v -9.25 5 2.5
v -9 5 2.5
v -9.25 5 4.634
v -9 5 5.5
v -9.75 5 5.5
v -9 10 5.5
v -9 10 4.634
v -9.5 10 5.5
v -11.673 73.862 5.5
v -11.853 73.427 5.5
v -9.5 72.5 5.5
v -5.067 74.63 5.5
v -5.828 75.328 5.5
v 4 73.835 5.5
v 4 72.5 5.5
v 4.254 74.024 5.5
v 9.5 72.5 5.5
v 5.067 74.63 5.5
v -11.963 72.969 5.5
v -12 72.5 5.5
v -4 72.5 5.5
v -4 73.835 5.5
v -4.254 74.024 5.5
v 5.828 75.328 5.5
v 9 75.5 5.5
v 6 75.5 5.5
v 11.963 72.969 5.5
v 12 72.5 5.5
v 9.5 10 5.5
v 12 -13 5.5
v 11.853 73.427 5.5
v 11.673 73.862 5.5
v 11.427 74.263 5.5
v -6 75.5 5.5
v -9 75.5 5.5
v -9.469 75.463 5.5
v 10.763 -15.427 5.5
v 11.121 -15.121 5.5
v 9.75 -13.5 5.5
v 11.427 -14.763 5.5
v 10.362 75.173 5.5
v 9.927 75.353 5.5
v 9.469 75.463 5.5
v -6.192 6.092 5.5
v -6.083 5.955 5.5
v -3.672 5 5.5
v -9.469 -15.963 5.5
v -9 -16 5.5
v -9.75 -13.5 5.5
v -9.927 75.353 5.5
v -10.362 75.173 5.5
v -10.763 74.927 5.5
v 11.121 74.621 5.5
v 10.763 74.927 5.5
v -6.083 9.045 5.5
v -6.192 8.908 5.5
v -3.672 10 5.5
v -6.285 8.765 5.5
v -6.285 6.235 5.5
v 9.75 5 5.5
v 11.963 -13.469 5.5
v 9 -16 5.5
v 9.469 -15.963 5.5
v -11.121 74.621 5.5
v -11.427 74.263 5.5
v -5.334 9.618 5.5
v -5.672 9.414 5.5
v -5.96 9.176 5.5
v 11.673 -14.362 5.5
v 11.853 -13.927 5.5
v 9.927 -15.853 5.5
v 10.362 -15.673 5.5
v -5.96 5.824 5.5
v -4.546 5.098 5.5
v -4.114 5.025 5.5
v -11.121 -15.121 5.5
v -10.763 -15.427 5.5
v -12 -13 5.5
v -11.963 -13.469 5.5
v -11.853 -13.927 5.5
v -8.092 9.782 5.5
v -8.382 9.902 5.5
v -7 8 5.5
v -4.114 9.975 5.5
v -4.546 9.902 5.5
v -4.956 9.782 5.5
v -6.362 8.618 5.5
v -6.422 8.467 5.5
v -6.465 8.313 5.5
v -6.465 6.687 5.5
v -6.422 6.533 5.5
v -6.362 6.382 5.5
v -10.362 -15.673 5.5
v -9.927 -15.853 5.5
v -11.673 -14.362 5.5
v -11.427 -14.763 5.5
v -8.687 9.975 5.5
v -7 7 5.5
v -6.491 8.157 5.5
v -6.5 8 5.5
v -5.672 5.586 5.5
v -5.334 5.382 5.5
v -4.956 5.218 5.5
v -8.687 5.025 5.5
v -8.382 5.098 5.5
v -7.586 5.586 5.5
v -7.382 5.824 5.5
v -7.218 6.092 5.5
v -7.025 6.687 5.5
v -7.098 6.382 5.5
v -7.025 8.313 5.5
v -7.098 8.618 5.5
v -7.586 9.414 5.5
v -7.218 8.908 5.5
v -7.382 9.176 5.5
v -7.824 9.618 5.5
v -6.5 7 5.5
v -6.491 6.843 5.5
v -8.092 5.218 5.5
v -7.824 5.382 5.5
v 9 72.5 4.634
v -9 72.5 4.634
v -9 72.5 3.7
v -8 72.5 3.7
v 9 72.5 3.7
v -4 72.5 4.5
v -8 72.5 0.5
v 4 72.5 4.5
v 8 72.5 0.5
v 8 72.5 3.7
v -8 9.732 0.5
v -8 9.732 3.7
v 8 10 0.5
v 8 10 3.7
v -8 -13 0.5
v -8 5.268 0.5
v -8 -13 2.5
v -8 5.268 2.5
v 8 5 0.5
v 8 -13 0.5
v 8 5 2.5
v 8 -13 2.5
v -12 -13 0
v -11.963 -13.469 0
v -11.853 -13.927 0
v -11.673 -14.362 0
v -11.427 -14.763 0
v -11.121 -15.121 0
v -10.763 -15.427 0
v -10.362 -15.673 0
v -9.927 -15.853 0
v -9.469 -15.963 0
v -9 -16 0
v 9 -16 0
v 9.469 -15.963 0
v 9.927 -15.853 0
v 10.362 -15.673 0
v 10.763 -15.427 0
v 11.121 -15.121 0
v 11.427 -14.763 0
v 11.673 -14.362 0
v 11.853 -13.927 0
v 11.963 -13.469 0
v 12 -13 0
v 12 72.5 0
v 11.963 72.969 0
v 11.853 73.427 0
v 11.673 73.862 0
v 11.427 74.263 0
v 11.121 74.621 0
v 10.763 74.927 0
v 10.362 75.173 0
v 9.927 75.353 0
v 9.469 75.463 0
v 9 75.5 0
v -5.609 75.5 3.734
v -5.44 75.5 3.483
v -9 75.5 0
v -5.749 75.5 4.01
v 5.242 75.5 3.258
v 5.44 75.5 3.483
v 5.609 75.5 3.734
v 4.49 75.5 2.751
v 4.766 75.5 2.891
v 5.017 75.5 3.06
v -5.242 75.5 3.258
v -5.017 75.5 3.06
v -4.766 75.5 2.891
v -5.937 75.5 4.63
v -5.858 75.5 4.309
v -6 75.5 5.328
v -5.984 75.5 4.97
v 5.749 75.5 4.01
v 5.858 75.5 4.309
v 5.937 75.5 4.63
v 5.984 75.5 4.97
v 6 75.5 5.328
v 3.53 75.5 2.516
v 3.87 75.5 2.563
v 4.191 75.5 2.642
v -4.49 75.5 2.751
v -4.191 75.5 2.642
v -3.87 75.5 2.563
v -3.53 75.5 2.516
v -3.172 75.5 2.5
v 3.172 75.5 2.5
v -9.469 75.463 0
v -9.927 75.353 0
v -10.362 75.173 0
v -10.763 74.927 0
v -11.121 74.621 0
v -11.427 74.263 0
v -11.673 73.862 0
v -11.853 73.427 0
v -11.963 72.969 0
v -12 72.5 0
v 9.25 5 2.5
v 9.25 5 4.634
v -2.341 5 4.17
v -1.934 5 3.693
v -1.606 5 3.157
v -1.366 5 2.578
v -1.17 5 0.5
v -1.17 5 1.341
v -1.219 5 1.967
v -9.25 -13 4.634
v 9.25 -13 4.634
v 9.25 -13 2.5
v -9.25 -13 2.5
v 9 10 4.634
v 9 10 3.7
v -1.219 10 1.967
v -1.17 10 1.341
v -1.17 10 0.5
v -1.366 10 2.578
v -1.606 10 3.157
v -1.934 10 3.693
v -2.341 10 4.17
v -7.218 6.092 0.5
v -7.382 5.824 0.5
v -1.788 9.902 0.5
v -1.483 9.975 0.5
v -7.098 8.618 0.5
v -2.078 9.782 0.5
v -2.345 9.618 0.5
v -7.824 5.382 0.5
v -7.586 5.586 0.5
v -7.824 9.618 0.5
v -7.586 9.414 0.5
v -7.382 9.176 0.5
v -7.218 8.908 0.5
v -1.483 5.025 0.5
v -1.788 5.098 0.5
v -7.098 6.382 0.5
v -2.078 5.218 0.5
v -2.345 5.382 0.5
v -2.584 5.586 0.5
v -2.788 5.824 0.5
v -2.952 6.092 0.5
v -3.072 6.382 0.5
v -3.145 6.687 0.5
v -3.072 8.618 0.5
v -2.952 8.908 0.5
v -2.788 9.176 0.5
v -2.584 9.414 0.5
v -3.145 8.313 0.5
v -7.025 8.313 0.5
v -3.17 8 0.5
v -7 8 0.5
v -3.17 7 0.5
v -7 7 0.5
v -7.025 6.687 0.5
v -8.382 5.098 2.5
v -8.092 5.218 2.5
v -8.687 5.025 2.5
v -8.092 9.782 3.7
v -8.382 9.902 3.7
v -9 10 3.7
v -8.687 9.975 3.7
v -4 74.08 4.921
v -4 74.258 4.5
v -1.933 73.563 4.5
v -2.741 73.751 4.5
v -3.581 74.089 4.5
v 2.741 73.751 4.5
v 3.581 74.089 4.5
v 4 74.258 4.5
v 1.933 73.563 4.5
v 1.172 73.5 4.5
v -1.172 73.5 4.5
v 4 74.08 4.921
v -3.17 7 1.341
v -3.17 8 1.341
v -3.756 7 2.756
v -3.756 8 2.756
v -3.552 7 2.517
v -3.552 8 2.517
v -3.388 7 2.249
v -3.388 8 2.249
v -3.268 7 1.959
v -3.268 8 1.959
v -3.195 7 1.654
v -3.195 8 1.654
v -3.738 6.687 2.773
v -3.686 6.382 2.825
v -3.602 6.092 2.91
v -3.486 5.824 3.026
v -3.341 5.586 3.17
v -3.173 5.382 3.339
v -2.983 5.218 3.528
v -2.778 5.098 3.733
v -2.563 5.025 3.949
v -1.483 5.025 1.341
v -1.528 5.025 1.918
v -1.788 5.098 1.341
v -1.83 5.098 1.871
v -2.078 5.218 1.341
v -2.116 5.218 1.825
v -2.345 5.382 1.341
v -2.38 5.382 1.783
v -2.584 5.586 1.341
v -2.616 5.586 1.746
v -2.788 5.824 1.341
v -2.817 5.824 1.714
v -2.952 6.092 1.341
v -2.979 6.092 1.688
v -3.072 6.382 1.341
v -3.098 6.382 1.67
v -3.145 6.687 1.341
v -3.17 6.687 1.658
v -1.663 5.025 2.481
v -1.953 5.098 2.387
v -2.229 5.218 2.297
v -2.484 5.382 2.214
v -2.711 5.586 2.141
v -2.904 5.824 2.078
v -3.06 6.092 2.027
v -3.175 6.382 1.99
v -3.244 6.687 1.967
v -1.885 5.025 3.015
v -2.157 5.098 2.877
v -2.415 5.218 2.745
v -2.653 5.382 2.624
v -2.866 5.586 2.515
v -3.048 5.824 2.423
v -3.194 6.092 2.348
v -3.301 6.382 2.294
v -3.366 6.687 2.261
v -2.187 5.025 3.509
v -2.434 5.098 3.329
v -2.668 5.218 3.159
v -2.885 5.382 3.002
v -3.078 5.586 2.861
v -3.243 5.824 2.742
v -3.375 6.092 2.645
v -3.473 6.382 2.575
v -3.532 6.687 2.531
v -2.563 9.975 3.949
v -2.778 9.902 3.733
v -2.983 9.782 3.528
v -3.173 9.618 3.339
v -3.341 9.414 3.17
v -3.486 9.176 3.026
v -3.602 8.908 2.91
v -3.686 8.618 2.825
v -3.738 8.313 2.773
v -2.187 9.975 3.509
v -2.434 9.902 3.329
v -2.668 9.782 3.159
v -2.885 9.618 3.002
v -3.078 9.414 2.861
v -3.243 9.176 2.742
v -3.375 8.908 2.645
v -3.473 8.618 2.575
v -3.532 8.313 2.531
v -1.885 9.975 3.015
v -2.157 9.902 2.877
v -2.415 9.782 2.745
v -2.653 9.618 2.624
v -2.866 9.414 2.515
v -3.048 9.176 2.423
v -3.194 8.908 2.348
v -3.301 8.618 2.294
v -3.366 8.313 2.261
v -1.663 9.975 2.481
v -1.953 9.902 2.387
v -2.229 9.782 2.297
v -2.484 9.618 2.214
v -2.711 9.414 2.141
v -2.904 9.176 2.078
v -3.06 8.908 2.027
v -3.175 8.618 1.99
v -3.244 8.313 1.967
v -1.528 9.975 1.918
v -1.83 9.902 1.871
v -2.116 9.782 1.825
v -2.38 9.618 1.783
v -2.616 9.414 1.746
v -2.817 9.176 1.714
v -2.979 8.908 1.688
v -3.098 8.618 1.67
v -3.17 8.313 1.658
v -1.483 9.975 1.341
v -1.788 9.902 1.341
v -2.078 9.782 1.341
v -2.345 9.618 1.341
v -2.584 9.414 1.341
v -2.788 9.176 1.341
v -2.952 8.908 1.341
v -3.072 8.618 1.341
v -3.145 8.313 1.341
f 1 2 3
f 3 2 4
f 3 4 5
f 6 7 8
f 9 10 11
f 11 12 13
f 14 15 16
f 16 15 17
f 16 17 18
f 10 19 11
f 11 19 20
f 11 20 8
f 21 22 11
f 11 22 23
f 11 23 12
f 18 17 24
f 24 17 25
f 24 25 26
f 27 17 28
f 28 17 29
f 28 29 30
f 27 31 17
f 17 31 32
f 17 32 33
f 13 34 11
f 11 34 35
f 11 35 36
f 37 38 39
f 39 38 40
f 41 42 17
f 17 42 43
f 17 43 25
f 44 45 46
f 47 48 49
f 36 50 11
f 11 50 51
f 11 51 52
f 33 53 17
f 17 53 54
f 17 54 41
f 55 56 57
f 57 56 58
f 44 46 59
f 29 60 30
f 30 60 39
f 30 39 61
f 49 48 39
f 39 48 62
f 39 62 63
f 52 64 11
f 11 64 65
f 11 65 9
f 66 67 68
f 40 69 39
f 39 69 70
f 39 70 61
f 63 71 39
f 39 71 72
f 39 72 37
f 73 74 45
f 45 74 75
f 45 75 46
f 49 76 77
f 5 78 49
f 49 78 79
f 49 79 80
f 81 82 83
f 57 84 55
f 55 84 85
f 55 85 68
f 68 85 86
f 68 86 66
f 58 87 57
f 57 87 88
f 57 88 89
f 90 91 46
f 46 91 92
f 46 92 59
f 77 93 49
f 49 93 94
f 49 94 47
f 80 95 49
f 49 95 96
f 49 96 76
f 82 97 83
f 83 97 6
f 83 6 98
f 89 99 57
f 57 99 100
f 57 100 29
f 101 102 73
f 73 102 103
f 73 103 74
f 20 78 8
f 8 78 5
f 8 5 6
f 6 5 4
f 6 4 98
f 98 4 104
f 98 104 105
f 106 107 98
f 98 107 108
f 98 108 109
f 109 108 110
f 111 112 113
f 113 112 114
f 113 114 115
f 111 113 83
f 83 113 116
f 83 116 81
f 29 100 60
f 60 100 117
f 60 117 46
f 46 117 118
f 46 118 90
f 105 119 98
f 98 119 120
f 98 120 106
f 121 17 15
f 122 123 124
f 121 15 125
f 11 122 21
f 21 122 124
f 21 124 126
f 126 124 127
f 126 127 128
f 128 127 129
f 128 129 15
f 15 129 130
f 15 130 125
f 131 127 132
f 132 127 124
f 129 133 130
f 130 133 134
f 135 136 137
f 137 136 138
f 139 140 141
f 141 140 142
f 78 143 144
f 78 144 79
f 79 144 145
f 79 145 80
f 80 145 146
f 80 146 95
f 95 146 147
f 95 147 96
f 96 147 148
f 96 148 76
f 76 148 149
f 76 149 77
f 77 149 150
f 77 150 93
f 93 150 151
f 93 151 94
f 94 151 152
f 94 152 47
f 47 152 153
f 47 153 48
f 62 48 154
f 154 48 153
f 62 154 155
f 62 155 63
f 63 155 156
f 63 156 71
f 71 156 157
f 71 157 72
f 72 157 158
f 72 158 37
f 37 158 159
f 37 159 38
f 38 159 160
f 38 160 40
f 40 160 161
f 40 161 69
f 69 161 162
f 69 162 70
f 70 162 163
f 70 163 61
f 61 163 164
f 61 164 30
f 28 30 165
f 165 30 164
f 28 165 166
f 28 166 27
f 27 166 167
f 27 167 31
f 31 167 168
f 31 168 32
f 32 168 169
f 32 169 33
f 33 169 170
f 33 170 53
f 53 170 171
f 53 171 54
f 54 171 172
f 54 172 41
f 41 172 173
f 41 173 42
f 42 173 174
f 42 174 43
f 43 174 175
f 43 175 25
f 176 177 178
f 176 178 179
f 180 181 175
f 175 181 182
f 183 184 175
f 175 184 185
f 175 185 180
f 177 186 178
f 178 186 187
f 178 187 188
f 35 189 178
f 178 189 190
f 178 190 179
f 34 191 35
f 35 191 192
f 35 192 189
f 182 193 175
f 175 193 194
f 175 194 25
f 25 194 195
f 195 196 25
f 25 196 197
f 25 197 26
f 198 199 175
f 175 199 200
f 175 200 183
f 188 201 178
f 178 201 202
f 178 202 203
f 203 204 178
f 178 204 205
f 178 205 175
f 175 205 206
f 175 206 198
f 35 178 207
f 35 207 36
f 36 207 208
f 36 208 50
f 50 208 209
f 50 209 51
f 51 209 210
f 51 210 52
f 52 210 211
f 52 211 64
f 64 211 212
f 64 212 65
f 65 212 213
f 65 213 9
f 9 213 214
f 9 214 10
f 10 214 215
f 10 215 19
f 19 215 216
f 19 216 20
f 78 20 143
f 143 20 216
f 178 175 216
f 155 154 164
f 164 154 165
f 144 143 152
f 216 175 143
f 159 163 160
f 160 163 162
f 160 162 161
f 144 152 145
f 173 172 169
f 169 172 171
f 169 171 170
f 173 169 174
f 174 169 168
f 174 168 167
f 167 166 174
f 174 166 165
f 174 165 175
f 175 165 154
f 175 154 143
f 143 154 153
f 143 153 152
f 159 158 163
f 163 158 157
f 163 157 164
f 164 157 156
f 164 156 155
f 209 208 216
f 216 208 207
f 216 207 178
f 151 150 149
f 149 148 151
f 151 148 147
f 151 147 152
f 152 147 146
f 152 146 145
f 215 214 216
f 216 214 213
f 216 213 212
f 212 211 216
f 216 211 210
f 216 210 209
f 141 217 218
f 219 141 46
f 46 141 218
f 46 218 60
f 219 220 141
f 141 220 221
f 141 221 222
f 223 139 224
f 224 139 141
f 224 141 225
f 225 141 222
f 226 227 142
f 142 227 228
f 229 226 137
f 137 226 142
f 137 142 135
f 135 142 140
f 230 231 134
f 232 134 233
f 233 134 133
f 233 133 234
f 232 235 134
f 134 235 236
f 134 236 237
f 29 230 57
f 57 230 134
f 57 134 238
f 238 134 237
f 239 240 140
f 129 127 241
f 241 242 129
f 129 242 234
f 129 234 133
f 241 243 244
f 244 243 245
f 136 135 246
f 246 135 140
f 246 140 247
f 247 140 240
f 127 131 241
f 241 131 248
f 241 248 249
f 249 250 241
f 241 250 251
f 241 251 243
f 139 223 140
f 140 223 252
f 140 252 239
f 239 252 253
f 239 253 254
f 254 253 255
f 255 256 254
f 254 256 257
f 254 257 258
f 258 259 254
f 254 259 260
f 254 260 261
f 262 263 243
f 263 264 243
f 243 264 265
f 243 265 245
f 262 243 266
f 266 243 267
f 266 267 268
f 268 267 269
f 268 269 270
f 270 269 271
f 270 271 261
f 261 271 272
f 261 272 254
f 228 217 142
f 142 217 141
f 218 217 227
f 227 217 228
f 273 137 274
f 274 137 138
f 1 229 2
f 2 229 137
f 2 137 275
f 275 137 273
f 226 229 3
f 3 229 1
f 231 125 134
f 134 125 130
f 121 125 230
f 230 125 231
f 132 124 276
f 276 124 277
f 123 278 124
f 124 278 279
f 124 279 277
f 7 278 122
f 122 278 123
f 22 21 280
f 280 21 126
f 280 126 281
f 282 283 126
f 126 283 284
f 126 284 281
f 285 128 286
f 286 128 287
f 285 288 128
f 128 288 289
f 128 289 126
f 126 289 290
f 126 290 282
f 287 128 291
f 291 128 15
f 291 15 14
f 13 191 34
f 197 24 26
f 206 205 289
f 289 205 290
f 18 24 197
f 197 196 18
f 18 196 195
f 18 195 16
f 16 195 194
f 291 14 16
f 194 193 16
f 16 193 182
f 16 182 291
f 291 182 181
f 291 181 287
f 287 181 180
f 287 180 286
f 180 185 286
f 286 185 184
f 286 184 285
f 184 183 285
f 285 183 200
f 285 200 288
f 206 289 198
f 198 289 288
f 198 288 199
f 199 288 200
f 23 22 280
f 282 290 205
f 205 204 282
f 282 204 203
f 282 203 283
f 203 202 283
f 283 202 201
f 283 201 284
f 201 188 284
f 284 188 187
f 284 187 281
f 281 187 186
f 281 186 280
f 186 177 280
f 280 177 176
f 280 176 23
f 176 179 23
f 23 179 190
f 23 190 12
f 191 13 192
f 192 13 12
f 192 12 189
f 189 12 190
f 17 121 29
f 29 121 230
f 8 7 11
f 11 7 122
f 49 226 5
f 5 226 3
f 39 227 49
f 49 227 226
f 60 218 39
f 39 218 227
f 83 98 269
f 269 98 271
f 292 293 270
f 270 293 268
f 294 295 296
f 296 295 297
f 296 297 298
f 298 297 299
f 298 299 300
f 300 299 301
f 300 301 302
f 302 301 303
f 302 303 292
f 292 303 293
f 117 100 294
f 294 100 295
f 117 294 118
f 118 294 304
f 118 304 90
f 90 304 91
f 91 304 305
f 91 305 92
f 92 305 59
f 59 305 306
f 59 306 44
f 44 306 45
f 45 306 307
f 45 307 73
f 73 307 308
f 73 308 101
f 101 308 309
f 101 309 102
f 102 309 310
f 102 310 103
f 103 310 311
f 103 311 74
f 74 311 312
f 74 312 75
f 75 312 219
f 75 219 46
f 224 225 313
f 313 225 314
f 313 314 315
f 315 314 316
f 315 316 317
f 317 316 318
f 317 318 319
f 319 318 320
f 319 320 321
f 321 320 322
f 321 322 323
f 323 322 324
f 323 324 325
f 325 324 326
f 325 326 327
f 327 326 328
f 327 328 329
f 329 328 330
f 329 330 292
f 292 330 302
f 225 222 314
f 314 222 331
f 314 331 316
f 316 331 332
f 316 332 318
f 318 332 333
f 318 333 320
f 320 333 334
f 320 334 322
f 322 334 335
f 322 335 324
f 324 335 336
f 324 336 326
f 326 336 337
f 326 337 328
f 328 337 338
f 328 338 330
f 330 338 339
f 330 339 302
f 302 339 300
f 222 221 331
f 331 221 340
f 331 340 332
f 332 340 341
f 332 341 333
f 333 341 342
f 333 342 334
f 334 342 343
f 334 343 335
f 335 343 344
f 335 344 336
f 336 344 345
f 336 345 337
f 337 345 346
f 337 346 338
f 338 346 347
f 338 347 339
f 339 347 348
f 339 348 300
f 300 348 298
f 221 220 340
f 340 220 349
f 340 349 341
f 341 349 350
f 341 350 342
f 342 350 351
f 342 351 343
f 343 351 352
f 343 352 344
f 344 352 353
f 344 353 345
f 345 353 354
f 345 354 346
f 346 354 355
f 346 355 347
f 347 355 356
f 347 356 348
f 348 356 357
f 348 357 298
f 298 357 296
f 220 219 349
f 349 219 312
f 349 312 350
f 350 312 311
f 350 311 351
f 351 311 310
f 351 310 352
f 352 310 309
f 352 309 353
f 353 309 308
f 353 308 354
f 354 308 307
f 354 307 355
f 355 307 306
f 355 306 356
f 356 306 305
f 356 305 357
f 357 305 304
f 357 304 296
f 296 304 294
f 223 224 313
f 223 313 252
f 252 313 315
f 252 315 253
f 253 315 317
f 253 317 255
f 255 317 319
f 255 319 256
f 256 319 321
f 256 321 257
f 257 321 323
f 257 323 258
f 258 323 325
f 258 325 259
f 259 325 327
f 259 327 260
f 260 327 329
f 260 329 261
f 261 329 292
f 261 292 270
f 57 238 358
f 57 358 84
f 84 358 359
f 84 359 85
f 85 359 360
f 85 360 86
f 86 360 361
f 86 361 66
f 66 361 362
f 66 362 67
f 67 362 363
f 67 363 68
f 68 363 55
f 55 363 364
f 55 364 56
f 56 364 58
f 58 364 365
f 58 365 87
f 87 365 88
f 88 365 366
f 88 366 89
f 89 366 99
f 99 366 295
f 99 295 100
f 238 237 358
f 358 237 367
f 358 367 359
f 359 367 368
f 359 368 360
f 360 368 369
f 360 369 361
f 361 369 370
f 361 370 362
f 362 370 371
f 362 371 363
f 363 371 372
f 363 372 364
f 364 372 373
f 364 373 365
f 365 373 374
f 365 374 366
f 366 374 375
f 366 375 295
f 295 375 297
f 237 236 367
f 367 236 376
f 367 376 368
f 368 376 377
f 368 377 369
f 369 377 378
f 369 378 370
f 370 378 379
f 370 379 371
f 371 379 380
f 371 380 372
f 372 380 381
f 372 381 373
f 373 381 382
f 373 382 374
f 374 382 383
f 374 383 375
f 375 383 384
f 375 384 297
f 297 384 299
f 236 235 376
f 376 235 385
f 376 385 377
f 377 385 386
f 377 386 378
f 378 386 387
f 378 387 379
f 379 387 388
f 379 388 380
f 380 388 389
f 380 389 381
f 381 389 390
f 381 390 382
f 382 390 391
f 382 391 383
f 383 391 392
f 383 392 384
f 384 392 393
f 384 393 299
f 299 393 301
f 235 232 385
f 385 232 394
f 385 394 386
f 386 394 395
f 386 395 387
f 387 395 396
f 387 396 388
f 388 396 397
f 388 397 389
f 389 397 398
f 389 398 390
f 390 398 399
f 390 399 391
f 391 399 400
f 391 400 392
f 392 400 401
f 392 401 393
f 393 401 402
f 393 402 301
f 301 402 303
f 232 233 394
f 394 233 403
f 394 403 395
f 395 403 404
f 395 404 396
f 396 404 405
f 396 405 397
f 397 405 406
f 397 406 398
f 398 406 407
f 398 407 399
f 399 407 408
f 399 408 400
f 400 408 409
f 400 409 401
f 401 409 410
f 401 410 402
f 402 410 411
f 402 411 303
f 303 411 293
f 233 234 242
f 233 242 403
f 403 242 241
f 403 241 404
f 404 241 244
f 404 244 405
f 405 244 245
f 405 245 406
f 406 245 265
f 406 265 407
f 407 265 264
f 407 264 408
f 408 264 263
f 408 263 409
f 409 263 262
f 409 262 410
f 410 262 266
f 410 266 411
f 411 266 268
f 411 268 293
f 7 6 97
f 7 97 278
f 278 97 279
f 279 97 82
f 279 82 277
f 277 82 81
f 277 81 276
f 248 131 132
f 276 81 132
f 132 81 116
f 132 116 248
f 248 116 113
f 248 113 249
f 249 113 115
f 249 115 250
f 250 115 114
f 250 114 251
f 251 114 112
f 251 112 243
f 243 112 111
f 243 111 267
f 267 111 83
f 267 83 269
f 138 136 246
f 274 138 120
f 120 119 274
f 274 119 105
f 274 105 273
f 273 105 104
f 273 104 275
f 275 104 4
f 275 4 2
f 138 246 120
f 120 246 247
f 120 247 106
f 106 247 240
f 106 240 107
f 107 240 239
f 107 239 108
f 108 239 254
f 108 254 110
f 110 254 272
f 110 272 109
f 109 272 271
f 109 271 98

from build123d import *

# Parameters (mm, degrees)
BOSS_EXTRUDE1_DEPTH          = 5.5
SKETCH4_W                    = 16
SKETCH4_H                    = 62.5
SKETCH4_H_2                  = 18
CUT_EXTRUDE1_DEPTH           = 5
SKETCH5_W                    = 18.5
SKETCH5_H                    = 18
CUT_EXTRUDE2_DEPTH           = 3
SKETCH7_W                    = 18
SKETCH7_H                    = 62.5
CUT_EXTRUDE3_DEPTH           = 1.8
CUT_EXTRUDE4_START           = -1
SKETCH10_W                   = 8
SKETCH10_H                   = 1
CUT_EXTRUDE4_DEPTH           = 89.479047827
CUT_EXTRUDE4_TAPER           = -45
CUT_EXTRUDE4_OTHER_WAY_DEPTH = 1.8
FILLET1_R                    = 4
CHAMFER1_SIZE                = 0.5
CHAMFER1_SIZE2               = 0.866025404
CUT_EXTRUDE5_REACH           = 68.817
FILLET2_R                    = 2
FILLET3_R                    = 2


with BuildPart() as part:
    # Sketch2 → Boss-Extrude1 (new body)
    with BuildSketch(Plane.XY):
        with BuildLine():
            Line((-9, 75.5), (9, 75.5))
            ThreePointArc((9, 75.5), (11.121320344, 74.621320344), (12, 72.5))
            Line((12, 72.5), (12, -13))
            ThreePointArc((12, -13), (11.121320344, -15.121320344), (9, -16))
            Line((9, -16), (-9, -16))
            ThreePointArc((-9, -16), (-11.121320344, -15.121320344), (-12, -13))
            Line((-12, -13), (-12, 72.5))
            ThreePointArc((-12, 72.5), (-11.121320344, 74.621320344), (-9, 75.5))
        make_face()
    extrude(amount=BOSS_EXTRUDE1_DEPTH)

    # Sketch4 → Cut-Extrude1 (cut)
    with BuildSketch(Plane.XY.offset(5.5)):
        with Locations((0, 41.25)):
            Rectangle(SKETCH4_W, SKETCH4_H)
        with Locations((0, -4)):
            Rectangle(SKETCH4_W, SKETCH4_H_2)
    extrude(amount=-CUT_EXTRUDE1_DEPTH, mode=Mode.SUBTRACT)

    # Sketch5 → Cut-Extrude2 (cut)
    with BuildSketch(Plane.XY.offset(5.5)):
        with Locations((0, -4)):
            Rectangle(SKETCH5_W, SKETCH5_H)
    extrude(amount=-CUT_EXTRUDE2_DEPTH, mode=Mode.SUBTRACT)

    # Sketch7 → Cut-Extrude3 (cut)
    with BuildSketch(Plane.XY.offset(5.5)):
        with Locations((0, 41.25)):
            Rectangle(SKETCH7_W, SKETCH7_H)
    extrude(amount=-CUT_EXTRUDE3_DEPTH, mode=Mode.SUBTRACT)

    # Sketch10 → Cut-Extrude4 (cut)
    with BuildSketch(Plane.XZ.offset(-72.5).offset(CUT_EXTRUDE4_START)):
        with Locations((0, 5)):
            Rectangle(SKETCH10_W, SKETCH10_H)
    extrude(amount=-CUT_EXTRUDE4_DEPTH, taper=CUT_EXTRUDE4_TAPER, mode=Mode.SUBTRACT)

    # Sketch10 → Cut-Extrude4 other way (cut)
    with BuildSketch(Plane.XZ.offset(-72.5).offset(CUT_EXTRUDE4_START)):
        with Locations((0, 5)):
            Rectangle(SKETCH10_W, SKETCH10_H)
    extrude(amount=CUT_EXTRUDE4_OTHER_WAY_DEPTH, mode=Mode.SUBTRACT)

    # Fillet1
    # the kernel refuses this fillet: 4 mm, written as the material it adds along each edge
    with BuildSketch(Plane(origin=(0.666666667, 70.166666667, 7.833333333), x_dir=(0.4082482904638629, 0.40824829046386407, 0.8164965809277255), z_dir=(0.5773502691896267, 0.5773502691896242, -0.5773502691896265))) as fillet1_piece_1_section:
        with BuildLine():
            CenterArc((FILLET1_R * 0.57735026919, -FILLET1_R), FILLET1_R, 90, 60)
            Line((-FILLET1_R * 0.288675134595, -FILLET1_R * 0.5), (0, 0))
            Line((0, 0), (FILLET1_R * 0.57735026919, 0))
        make_face()
    fillet1_piece_1 = extrude(amount=15.011106999, mode=Mode.PRIVATE)
    fillet1_piece_1 = split(fillet1_piece_1, bisect_by=Plane(origin=(0.666666667, 75.5, 7.833333333), z_dir=(0, -1, 0)), keep=Keep.TOP, mode=Mode.PRIVATE)
    fillet1_piece_1 = split(fillet1_piece_1, bisect_by=Plane(origin=(4, 70.166666667, 7.833333333), z_dir=(-1, 0, 0)), keep=Keep.TOP, mode=Mode.PRIVATE)
    fillet1_piece_1 = split(fillet1_piece_1, bisect_by=Plane(origin=(0.666666667, 70.166666667, 4.5), z_dir=(0, 0, -1)), keep=Keep.TOP, mode=Mode.PRIVATE)
    add(fillet1_piece_1)
    with BuildSketch(Plane(origin=(0.666666667, 70.166666667, 7.833333333), x_dir=(0.4082482904638629, 0.40824829046386407, 0.8164965809277255), z_dir=(0.5773502691896267, 0.5773502691896242, -0.5773502691896265))) as fillet1_piece_2_section:
        with BuildLine():
            CenterArc((FILLET1_R * 0.57735026919, -FILLET1_R), FILLET1_R, 90, 60)
            Line((-FILLET1_R * 0.288675134595, -FILLET1_R * 0.5), (0, 0))
            Line((0, 0), (FILLET1_R * 0.57735026919, 0))
        make_face()
    fillet1_piece_2 = extrude(amount=15.011106999, mode=Mode.PRIVATE)
    fillet1_piece_2 = split(fillet1_piece_2, bisect_by=Plane(origin=(0.666666667, 75.5, 7.833333333), z_dir=(0, -1, 0)), keep=Keep.TOP, mode=Mode.PRIVATE)
    fillet1_piece_2 = split(fillet1_piece_2, bisect_by=Plane(origin=(0.666666667, 70.166666667, 5.5), z_dir=(0, 0, -1)), keep=Keep.TOP, mode=Mode.PRIVATE)
    fillet1_piece_2 = split(fillet1_piece_2, bisect_by=Plane(origin=(4, 70.166666667, 7.833333333), z_dir=(1, 0, 0)), keep=Keep.TOP, mode=Mode.PRIVATE)
    fillet1_piece_2 = split(fillet1_piece_2, bisect_by=Plane(origin=(0.666666667, 70.166666667, 4.5), z_dir=(0, 0, 1)), keep=Keep.TOP, mode=Mode.PRIVATE)
    add(fillet1_piece_2)
    with BuildSketch(Plane(origin=(0.666666667, 70.166666667, 7.833333333), x_dir=(0.4082482904638629, 0.40824829046386407, 0.8164965809277255), z_dir=(0.5773502691896267, 0.5773502691896242, -0.5773502691896265))) as fillet1_piece_3_section:
        with BuildLine():
            CenterArc((FILLET1_R * 0.57735026919, -FILLET1_R), FILLET1_R, 90, 60)
            Line((-FILLET1_R * 0.288675134595, -FILLET1_R * 0.5), (0, 0))
            Line((0, 0), (FILLET1_R * 0.57735026919, 0))
        make_face()
    fillet1_piece_3 = extrude(amount=15.011106999, mode=Mode.PRIVATE)
    fillet1_piece_3 = split(fillet1_piece_3, bisect_by=Plane(origin=(0.666666667, 75.5, 7.833333333), z_dir=(0, -1, 0)), keep=Keep.TOP, mode=Mode.PRIVATE)
    fillet1_piece_3 = split(fillet1_piece_3, bisect_by=Plane(origin=(4, 70.166666667, 7.833333333), z_dir=(1, 0, 0)), keep=Keep.TOP, mode=Mode.PRIVATE)
    fillet1_piece_3 = split(fillet1_piece_3, bisect_by=Plane(origin=(0.666666667, 70.166666667, 4.5), z_dir=(0, 0, -1)), keep=Keep.TOP, mode=Mode.PRIVATE)
    add(fillet1_piece_3)
    with BuildSketch(Plane(origin=(-0.666666667, 70.166666667, 7.833333333), x_dir=(0.8164965809277253, 0.40824829046386424, -0.4082482904638631), z_dir=(-0.5773502691896267, 0.5773502691896242, -0.5773502691896265))) as fillet1_piece_4_section:
        with BuildLine():
            CenterArc((FILLET1_R * 0.57735026919, -FILLET1_R), FILLET1_R, 90, 60)
            Line((-FILLET1_R * 0.288675134595, -FILLET1_R * 0.5), (0, 0))
            Line((0, 0), (FILLET1_R * 0.57735026919, 0))
        make_face()
    fillet1_piece_4 = extrude(amount=15.011106999, mode=Mode.PRIVATE)
    fillet1_piece_4 = split(fillet1_piece_4, bisect_by=Plane(origin=(-0.666666667, 75.5, 7.833333333), z_dir=(0, -1, 0)), keep=Keep.TOP, mode=Mode.PRIVATE)
    fillet1_piece_4 = split(fillet1_piece_4, bisect_by=Plane(origin=(-0.666666667, 70.166666667, 5.5), z_dir=(0, 0, -1)), keep=Keep.TOP, mode=Mode.PRIVATE)
    fillet1_piece_4 = split(fillet1_piece_4, bisect_by=Plane(origin=(-0.666666667, 70.166666667, 4.5), z_dir=(0, 0, 1)), keep=Keep.TOP, mode=Mode.PRIVATE)
    fillet1_piece_4 = split(fillet1_piece_4, bisect_by=Plane(origin=(-4, 70.166666667, 7.833333333), z_dir=(-1, 0, 0)), keep=Keep.TOP, mode=Mode.PRIVATE)
    add(fillet1_piece_4)
    with BuildSketch(Plane(origin=(-0.666666667, 70.166666667, 7.833333333), x_dir=(0.8164965809277253, 0.40824829046386424, -0.4082482904638631), z_dir=(-0.5773502691896267, 0.5773502691896242, -0.5773502691896265))) as fillet1_piece_5_section:
        with BuildLine():
            CenterArc((FILLET1_R * 0.57735026919, -FILLET1_R), FILLET1_R, 90, 60)
            Line((-FILLET1_R * 0.288675134595, -FILLET1_R * 0.5), (0, 0))
            Line((0, 0), (FILLET1_R * 0.57735026919, 0))
        make_face()
    fillet1_piece_5 = extrude(amount=15.011106999, mode=Mode.PRIVATE)
    fillet1_piece_5 = split(fillet1_piece_5, bisect_by=Plane(origin=(-0.666666667, 75.5, 7.833333333), z_dir=(0, -1, 0)), keep=Keep.TOP, mode=Mode.PRIVATE)
    fillet1_piece_5 = split(fillet1_piece_5, bisect_by=Plane(origin=(-0.666666667, 70.166666667, 4.5), z_dir=(0, 0, -1)), keep=Keep.TOP, mode=Mode.PRIVATE)
    fillet1_piece_5 = split(fillet1_piece_5, bisect_by=Plane(origin=(-4, 70.166666667, 7.833333333), z_dir=(1, 0, 0)), keep=Keep.TOP, mode=Mode.PRIVATE)
    add(fillet1_piece_5)
    with BuildSketch(Plane(origin=(-0.666666667, 70.166666667, 7.833333333), x_dir=(0.8164965809277253, 0.40824829046386424, -0.4082482904638631), z_dir=(-0.5773502691896267, 0.5773502691896242, -0.5773502691896265))) as fillet1_piece_6_section:
        with BuildLine():
            CenterArc((FILLET1_R * 0.57735026919, -FILLET1_R), FILLET1_R, 90, 60)
            Line((-FILLET1_R * 0.288675134595, -FILLET1_R * 0.5), (0, 0))
            Line((0, 0), (FILLET1_R * 0.57735026919, 0))
        make_face()
    fillet1_piece_6 = extrude(amount=15.011106999, mode=Mode.PRIVATE)
    fillet1_piece_6 = split(fillet1_piece_6, bisect_by=Plane(origin=(-0.666666667, 75.5, 7.833333333), z_dir=(0, -1, 0)), keep=Keep.TOP, mode=Mode.PRIVATE)
    fillet1_piece_6 = split(fillet1_piece_6, bisect_by=Plane(origin=(-0.666666667, 70.166666667, 4.5), z_dir=(0, 0, -1)), keep=Keep.TOP, mode=Mode.PRIVATE)
    fillet1_piece_6 = split(fillet1_piece_6, bisect_by=Plane(origin=(-4, 70.166666667, 7.833333333), z_dir=(-1, 0, 0)), keep=Keep.TOP, mode=Mode.PRIVATE)
    add(fillet1_piece_6)

    # Chamfer1
    chamfer1_edges = [part.edges().sort_by_distance(p)[0] for p in [
        (0, -13, 5.5),
        (-9.25, -4, 5.5),
        (9.25, -4, 5.5),
        (-9, 41.25, 5.5),
        (9, 41.25, 5.5),
    ]]
    chamfer1_side = [part.faces().sort_by_distance(p)[0] for p in [
        (-5.551441315, 73.803006174, 5.5),
    ]]
    chamfer(chamfer1_edges, length=CHAMFER1_SIZE, length2=CHAMFER1_SIZE2, reference=chamfer1_side[0])

    # Sketch11 → Cut-Extrude5 (cut, up to next)
    with BuildSketch(Plane(origin=(0, 10, 0), x_dir=(1, 0, 0), z_dir=(0, 1, 0)), mode=Mode.PRIVATE) as cut_extrude5_sk1:
        with BuildLine():
            Line((-7, -5.5), (-7, -0.5))
            Line((-7, -0.5), (-3.169880661, -0.5))
            Line((-3.169880661, -0.5), (-3.169880661, -1.341453537))
            ThreePointArc((-3.169880661, -1.341453537), (-3.322121596, -2.106820401), (-3.755667099, -2.755667099))
            Line((-3.755667099, -2.755667099), (-6.5, -5.5))
            Line((-6.5, -5.5), (-7, -5.5))
        make_face()
    cut_extrude5_tool1 = extrude(cut_extrude5_sk1.sketch, amount=-CUT_EXTRUDE5_REACH, mode=Mode.PRIVATE) & part.part
    add(cut_extrude5_tool1.solids().sort_by_distance((-5.426528, 10, 2.435535))[0], mode=Mode.SUBTRACT)

    # Fillet2
    fillet2_edges = [part.edges().sort_by_distance(p)[0] for p in [
        (-3.169880661, 5, 0.920726768),
        (-3.322121596, 5, 2.106820401),
        (-5.12783355, 5, 4.12783355),
        (-5.12783355, 10, 4.12783355),
        (-3.322121596, 10, 2.106820401),
        (-3.169880661, 10, 0.920726768),
    ]]
    fillet(fillet2_edges, radius=FILLET2_R)

    # Fillet3
    fillet3_edges = [part.edges().sort_by_distance(p)[0] for p in [
        (-7, 10, 3),
        (-7, 5, 3),
    ]]
    fillet(fillet3_edges, radius=FILLET3_R)


solid = part.part
